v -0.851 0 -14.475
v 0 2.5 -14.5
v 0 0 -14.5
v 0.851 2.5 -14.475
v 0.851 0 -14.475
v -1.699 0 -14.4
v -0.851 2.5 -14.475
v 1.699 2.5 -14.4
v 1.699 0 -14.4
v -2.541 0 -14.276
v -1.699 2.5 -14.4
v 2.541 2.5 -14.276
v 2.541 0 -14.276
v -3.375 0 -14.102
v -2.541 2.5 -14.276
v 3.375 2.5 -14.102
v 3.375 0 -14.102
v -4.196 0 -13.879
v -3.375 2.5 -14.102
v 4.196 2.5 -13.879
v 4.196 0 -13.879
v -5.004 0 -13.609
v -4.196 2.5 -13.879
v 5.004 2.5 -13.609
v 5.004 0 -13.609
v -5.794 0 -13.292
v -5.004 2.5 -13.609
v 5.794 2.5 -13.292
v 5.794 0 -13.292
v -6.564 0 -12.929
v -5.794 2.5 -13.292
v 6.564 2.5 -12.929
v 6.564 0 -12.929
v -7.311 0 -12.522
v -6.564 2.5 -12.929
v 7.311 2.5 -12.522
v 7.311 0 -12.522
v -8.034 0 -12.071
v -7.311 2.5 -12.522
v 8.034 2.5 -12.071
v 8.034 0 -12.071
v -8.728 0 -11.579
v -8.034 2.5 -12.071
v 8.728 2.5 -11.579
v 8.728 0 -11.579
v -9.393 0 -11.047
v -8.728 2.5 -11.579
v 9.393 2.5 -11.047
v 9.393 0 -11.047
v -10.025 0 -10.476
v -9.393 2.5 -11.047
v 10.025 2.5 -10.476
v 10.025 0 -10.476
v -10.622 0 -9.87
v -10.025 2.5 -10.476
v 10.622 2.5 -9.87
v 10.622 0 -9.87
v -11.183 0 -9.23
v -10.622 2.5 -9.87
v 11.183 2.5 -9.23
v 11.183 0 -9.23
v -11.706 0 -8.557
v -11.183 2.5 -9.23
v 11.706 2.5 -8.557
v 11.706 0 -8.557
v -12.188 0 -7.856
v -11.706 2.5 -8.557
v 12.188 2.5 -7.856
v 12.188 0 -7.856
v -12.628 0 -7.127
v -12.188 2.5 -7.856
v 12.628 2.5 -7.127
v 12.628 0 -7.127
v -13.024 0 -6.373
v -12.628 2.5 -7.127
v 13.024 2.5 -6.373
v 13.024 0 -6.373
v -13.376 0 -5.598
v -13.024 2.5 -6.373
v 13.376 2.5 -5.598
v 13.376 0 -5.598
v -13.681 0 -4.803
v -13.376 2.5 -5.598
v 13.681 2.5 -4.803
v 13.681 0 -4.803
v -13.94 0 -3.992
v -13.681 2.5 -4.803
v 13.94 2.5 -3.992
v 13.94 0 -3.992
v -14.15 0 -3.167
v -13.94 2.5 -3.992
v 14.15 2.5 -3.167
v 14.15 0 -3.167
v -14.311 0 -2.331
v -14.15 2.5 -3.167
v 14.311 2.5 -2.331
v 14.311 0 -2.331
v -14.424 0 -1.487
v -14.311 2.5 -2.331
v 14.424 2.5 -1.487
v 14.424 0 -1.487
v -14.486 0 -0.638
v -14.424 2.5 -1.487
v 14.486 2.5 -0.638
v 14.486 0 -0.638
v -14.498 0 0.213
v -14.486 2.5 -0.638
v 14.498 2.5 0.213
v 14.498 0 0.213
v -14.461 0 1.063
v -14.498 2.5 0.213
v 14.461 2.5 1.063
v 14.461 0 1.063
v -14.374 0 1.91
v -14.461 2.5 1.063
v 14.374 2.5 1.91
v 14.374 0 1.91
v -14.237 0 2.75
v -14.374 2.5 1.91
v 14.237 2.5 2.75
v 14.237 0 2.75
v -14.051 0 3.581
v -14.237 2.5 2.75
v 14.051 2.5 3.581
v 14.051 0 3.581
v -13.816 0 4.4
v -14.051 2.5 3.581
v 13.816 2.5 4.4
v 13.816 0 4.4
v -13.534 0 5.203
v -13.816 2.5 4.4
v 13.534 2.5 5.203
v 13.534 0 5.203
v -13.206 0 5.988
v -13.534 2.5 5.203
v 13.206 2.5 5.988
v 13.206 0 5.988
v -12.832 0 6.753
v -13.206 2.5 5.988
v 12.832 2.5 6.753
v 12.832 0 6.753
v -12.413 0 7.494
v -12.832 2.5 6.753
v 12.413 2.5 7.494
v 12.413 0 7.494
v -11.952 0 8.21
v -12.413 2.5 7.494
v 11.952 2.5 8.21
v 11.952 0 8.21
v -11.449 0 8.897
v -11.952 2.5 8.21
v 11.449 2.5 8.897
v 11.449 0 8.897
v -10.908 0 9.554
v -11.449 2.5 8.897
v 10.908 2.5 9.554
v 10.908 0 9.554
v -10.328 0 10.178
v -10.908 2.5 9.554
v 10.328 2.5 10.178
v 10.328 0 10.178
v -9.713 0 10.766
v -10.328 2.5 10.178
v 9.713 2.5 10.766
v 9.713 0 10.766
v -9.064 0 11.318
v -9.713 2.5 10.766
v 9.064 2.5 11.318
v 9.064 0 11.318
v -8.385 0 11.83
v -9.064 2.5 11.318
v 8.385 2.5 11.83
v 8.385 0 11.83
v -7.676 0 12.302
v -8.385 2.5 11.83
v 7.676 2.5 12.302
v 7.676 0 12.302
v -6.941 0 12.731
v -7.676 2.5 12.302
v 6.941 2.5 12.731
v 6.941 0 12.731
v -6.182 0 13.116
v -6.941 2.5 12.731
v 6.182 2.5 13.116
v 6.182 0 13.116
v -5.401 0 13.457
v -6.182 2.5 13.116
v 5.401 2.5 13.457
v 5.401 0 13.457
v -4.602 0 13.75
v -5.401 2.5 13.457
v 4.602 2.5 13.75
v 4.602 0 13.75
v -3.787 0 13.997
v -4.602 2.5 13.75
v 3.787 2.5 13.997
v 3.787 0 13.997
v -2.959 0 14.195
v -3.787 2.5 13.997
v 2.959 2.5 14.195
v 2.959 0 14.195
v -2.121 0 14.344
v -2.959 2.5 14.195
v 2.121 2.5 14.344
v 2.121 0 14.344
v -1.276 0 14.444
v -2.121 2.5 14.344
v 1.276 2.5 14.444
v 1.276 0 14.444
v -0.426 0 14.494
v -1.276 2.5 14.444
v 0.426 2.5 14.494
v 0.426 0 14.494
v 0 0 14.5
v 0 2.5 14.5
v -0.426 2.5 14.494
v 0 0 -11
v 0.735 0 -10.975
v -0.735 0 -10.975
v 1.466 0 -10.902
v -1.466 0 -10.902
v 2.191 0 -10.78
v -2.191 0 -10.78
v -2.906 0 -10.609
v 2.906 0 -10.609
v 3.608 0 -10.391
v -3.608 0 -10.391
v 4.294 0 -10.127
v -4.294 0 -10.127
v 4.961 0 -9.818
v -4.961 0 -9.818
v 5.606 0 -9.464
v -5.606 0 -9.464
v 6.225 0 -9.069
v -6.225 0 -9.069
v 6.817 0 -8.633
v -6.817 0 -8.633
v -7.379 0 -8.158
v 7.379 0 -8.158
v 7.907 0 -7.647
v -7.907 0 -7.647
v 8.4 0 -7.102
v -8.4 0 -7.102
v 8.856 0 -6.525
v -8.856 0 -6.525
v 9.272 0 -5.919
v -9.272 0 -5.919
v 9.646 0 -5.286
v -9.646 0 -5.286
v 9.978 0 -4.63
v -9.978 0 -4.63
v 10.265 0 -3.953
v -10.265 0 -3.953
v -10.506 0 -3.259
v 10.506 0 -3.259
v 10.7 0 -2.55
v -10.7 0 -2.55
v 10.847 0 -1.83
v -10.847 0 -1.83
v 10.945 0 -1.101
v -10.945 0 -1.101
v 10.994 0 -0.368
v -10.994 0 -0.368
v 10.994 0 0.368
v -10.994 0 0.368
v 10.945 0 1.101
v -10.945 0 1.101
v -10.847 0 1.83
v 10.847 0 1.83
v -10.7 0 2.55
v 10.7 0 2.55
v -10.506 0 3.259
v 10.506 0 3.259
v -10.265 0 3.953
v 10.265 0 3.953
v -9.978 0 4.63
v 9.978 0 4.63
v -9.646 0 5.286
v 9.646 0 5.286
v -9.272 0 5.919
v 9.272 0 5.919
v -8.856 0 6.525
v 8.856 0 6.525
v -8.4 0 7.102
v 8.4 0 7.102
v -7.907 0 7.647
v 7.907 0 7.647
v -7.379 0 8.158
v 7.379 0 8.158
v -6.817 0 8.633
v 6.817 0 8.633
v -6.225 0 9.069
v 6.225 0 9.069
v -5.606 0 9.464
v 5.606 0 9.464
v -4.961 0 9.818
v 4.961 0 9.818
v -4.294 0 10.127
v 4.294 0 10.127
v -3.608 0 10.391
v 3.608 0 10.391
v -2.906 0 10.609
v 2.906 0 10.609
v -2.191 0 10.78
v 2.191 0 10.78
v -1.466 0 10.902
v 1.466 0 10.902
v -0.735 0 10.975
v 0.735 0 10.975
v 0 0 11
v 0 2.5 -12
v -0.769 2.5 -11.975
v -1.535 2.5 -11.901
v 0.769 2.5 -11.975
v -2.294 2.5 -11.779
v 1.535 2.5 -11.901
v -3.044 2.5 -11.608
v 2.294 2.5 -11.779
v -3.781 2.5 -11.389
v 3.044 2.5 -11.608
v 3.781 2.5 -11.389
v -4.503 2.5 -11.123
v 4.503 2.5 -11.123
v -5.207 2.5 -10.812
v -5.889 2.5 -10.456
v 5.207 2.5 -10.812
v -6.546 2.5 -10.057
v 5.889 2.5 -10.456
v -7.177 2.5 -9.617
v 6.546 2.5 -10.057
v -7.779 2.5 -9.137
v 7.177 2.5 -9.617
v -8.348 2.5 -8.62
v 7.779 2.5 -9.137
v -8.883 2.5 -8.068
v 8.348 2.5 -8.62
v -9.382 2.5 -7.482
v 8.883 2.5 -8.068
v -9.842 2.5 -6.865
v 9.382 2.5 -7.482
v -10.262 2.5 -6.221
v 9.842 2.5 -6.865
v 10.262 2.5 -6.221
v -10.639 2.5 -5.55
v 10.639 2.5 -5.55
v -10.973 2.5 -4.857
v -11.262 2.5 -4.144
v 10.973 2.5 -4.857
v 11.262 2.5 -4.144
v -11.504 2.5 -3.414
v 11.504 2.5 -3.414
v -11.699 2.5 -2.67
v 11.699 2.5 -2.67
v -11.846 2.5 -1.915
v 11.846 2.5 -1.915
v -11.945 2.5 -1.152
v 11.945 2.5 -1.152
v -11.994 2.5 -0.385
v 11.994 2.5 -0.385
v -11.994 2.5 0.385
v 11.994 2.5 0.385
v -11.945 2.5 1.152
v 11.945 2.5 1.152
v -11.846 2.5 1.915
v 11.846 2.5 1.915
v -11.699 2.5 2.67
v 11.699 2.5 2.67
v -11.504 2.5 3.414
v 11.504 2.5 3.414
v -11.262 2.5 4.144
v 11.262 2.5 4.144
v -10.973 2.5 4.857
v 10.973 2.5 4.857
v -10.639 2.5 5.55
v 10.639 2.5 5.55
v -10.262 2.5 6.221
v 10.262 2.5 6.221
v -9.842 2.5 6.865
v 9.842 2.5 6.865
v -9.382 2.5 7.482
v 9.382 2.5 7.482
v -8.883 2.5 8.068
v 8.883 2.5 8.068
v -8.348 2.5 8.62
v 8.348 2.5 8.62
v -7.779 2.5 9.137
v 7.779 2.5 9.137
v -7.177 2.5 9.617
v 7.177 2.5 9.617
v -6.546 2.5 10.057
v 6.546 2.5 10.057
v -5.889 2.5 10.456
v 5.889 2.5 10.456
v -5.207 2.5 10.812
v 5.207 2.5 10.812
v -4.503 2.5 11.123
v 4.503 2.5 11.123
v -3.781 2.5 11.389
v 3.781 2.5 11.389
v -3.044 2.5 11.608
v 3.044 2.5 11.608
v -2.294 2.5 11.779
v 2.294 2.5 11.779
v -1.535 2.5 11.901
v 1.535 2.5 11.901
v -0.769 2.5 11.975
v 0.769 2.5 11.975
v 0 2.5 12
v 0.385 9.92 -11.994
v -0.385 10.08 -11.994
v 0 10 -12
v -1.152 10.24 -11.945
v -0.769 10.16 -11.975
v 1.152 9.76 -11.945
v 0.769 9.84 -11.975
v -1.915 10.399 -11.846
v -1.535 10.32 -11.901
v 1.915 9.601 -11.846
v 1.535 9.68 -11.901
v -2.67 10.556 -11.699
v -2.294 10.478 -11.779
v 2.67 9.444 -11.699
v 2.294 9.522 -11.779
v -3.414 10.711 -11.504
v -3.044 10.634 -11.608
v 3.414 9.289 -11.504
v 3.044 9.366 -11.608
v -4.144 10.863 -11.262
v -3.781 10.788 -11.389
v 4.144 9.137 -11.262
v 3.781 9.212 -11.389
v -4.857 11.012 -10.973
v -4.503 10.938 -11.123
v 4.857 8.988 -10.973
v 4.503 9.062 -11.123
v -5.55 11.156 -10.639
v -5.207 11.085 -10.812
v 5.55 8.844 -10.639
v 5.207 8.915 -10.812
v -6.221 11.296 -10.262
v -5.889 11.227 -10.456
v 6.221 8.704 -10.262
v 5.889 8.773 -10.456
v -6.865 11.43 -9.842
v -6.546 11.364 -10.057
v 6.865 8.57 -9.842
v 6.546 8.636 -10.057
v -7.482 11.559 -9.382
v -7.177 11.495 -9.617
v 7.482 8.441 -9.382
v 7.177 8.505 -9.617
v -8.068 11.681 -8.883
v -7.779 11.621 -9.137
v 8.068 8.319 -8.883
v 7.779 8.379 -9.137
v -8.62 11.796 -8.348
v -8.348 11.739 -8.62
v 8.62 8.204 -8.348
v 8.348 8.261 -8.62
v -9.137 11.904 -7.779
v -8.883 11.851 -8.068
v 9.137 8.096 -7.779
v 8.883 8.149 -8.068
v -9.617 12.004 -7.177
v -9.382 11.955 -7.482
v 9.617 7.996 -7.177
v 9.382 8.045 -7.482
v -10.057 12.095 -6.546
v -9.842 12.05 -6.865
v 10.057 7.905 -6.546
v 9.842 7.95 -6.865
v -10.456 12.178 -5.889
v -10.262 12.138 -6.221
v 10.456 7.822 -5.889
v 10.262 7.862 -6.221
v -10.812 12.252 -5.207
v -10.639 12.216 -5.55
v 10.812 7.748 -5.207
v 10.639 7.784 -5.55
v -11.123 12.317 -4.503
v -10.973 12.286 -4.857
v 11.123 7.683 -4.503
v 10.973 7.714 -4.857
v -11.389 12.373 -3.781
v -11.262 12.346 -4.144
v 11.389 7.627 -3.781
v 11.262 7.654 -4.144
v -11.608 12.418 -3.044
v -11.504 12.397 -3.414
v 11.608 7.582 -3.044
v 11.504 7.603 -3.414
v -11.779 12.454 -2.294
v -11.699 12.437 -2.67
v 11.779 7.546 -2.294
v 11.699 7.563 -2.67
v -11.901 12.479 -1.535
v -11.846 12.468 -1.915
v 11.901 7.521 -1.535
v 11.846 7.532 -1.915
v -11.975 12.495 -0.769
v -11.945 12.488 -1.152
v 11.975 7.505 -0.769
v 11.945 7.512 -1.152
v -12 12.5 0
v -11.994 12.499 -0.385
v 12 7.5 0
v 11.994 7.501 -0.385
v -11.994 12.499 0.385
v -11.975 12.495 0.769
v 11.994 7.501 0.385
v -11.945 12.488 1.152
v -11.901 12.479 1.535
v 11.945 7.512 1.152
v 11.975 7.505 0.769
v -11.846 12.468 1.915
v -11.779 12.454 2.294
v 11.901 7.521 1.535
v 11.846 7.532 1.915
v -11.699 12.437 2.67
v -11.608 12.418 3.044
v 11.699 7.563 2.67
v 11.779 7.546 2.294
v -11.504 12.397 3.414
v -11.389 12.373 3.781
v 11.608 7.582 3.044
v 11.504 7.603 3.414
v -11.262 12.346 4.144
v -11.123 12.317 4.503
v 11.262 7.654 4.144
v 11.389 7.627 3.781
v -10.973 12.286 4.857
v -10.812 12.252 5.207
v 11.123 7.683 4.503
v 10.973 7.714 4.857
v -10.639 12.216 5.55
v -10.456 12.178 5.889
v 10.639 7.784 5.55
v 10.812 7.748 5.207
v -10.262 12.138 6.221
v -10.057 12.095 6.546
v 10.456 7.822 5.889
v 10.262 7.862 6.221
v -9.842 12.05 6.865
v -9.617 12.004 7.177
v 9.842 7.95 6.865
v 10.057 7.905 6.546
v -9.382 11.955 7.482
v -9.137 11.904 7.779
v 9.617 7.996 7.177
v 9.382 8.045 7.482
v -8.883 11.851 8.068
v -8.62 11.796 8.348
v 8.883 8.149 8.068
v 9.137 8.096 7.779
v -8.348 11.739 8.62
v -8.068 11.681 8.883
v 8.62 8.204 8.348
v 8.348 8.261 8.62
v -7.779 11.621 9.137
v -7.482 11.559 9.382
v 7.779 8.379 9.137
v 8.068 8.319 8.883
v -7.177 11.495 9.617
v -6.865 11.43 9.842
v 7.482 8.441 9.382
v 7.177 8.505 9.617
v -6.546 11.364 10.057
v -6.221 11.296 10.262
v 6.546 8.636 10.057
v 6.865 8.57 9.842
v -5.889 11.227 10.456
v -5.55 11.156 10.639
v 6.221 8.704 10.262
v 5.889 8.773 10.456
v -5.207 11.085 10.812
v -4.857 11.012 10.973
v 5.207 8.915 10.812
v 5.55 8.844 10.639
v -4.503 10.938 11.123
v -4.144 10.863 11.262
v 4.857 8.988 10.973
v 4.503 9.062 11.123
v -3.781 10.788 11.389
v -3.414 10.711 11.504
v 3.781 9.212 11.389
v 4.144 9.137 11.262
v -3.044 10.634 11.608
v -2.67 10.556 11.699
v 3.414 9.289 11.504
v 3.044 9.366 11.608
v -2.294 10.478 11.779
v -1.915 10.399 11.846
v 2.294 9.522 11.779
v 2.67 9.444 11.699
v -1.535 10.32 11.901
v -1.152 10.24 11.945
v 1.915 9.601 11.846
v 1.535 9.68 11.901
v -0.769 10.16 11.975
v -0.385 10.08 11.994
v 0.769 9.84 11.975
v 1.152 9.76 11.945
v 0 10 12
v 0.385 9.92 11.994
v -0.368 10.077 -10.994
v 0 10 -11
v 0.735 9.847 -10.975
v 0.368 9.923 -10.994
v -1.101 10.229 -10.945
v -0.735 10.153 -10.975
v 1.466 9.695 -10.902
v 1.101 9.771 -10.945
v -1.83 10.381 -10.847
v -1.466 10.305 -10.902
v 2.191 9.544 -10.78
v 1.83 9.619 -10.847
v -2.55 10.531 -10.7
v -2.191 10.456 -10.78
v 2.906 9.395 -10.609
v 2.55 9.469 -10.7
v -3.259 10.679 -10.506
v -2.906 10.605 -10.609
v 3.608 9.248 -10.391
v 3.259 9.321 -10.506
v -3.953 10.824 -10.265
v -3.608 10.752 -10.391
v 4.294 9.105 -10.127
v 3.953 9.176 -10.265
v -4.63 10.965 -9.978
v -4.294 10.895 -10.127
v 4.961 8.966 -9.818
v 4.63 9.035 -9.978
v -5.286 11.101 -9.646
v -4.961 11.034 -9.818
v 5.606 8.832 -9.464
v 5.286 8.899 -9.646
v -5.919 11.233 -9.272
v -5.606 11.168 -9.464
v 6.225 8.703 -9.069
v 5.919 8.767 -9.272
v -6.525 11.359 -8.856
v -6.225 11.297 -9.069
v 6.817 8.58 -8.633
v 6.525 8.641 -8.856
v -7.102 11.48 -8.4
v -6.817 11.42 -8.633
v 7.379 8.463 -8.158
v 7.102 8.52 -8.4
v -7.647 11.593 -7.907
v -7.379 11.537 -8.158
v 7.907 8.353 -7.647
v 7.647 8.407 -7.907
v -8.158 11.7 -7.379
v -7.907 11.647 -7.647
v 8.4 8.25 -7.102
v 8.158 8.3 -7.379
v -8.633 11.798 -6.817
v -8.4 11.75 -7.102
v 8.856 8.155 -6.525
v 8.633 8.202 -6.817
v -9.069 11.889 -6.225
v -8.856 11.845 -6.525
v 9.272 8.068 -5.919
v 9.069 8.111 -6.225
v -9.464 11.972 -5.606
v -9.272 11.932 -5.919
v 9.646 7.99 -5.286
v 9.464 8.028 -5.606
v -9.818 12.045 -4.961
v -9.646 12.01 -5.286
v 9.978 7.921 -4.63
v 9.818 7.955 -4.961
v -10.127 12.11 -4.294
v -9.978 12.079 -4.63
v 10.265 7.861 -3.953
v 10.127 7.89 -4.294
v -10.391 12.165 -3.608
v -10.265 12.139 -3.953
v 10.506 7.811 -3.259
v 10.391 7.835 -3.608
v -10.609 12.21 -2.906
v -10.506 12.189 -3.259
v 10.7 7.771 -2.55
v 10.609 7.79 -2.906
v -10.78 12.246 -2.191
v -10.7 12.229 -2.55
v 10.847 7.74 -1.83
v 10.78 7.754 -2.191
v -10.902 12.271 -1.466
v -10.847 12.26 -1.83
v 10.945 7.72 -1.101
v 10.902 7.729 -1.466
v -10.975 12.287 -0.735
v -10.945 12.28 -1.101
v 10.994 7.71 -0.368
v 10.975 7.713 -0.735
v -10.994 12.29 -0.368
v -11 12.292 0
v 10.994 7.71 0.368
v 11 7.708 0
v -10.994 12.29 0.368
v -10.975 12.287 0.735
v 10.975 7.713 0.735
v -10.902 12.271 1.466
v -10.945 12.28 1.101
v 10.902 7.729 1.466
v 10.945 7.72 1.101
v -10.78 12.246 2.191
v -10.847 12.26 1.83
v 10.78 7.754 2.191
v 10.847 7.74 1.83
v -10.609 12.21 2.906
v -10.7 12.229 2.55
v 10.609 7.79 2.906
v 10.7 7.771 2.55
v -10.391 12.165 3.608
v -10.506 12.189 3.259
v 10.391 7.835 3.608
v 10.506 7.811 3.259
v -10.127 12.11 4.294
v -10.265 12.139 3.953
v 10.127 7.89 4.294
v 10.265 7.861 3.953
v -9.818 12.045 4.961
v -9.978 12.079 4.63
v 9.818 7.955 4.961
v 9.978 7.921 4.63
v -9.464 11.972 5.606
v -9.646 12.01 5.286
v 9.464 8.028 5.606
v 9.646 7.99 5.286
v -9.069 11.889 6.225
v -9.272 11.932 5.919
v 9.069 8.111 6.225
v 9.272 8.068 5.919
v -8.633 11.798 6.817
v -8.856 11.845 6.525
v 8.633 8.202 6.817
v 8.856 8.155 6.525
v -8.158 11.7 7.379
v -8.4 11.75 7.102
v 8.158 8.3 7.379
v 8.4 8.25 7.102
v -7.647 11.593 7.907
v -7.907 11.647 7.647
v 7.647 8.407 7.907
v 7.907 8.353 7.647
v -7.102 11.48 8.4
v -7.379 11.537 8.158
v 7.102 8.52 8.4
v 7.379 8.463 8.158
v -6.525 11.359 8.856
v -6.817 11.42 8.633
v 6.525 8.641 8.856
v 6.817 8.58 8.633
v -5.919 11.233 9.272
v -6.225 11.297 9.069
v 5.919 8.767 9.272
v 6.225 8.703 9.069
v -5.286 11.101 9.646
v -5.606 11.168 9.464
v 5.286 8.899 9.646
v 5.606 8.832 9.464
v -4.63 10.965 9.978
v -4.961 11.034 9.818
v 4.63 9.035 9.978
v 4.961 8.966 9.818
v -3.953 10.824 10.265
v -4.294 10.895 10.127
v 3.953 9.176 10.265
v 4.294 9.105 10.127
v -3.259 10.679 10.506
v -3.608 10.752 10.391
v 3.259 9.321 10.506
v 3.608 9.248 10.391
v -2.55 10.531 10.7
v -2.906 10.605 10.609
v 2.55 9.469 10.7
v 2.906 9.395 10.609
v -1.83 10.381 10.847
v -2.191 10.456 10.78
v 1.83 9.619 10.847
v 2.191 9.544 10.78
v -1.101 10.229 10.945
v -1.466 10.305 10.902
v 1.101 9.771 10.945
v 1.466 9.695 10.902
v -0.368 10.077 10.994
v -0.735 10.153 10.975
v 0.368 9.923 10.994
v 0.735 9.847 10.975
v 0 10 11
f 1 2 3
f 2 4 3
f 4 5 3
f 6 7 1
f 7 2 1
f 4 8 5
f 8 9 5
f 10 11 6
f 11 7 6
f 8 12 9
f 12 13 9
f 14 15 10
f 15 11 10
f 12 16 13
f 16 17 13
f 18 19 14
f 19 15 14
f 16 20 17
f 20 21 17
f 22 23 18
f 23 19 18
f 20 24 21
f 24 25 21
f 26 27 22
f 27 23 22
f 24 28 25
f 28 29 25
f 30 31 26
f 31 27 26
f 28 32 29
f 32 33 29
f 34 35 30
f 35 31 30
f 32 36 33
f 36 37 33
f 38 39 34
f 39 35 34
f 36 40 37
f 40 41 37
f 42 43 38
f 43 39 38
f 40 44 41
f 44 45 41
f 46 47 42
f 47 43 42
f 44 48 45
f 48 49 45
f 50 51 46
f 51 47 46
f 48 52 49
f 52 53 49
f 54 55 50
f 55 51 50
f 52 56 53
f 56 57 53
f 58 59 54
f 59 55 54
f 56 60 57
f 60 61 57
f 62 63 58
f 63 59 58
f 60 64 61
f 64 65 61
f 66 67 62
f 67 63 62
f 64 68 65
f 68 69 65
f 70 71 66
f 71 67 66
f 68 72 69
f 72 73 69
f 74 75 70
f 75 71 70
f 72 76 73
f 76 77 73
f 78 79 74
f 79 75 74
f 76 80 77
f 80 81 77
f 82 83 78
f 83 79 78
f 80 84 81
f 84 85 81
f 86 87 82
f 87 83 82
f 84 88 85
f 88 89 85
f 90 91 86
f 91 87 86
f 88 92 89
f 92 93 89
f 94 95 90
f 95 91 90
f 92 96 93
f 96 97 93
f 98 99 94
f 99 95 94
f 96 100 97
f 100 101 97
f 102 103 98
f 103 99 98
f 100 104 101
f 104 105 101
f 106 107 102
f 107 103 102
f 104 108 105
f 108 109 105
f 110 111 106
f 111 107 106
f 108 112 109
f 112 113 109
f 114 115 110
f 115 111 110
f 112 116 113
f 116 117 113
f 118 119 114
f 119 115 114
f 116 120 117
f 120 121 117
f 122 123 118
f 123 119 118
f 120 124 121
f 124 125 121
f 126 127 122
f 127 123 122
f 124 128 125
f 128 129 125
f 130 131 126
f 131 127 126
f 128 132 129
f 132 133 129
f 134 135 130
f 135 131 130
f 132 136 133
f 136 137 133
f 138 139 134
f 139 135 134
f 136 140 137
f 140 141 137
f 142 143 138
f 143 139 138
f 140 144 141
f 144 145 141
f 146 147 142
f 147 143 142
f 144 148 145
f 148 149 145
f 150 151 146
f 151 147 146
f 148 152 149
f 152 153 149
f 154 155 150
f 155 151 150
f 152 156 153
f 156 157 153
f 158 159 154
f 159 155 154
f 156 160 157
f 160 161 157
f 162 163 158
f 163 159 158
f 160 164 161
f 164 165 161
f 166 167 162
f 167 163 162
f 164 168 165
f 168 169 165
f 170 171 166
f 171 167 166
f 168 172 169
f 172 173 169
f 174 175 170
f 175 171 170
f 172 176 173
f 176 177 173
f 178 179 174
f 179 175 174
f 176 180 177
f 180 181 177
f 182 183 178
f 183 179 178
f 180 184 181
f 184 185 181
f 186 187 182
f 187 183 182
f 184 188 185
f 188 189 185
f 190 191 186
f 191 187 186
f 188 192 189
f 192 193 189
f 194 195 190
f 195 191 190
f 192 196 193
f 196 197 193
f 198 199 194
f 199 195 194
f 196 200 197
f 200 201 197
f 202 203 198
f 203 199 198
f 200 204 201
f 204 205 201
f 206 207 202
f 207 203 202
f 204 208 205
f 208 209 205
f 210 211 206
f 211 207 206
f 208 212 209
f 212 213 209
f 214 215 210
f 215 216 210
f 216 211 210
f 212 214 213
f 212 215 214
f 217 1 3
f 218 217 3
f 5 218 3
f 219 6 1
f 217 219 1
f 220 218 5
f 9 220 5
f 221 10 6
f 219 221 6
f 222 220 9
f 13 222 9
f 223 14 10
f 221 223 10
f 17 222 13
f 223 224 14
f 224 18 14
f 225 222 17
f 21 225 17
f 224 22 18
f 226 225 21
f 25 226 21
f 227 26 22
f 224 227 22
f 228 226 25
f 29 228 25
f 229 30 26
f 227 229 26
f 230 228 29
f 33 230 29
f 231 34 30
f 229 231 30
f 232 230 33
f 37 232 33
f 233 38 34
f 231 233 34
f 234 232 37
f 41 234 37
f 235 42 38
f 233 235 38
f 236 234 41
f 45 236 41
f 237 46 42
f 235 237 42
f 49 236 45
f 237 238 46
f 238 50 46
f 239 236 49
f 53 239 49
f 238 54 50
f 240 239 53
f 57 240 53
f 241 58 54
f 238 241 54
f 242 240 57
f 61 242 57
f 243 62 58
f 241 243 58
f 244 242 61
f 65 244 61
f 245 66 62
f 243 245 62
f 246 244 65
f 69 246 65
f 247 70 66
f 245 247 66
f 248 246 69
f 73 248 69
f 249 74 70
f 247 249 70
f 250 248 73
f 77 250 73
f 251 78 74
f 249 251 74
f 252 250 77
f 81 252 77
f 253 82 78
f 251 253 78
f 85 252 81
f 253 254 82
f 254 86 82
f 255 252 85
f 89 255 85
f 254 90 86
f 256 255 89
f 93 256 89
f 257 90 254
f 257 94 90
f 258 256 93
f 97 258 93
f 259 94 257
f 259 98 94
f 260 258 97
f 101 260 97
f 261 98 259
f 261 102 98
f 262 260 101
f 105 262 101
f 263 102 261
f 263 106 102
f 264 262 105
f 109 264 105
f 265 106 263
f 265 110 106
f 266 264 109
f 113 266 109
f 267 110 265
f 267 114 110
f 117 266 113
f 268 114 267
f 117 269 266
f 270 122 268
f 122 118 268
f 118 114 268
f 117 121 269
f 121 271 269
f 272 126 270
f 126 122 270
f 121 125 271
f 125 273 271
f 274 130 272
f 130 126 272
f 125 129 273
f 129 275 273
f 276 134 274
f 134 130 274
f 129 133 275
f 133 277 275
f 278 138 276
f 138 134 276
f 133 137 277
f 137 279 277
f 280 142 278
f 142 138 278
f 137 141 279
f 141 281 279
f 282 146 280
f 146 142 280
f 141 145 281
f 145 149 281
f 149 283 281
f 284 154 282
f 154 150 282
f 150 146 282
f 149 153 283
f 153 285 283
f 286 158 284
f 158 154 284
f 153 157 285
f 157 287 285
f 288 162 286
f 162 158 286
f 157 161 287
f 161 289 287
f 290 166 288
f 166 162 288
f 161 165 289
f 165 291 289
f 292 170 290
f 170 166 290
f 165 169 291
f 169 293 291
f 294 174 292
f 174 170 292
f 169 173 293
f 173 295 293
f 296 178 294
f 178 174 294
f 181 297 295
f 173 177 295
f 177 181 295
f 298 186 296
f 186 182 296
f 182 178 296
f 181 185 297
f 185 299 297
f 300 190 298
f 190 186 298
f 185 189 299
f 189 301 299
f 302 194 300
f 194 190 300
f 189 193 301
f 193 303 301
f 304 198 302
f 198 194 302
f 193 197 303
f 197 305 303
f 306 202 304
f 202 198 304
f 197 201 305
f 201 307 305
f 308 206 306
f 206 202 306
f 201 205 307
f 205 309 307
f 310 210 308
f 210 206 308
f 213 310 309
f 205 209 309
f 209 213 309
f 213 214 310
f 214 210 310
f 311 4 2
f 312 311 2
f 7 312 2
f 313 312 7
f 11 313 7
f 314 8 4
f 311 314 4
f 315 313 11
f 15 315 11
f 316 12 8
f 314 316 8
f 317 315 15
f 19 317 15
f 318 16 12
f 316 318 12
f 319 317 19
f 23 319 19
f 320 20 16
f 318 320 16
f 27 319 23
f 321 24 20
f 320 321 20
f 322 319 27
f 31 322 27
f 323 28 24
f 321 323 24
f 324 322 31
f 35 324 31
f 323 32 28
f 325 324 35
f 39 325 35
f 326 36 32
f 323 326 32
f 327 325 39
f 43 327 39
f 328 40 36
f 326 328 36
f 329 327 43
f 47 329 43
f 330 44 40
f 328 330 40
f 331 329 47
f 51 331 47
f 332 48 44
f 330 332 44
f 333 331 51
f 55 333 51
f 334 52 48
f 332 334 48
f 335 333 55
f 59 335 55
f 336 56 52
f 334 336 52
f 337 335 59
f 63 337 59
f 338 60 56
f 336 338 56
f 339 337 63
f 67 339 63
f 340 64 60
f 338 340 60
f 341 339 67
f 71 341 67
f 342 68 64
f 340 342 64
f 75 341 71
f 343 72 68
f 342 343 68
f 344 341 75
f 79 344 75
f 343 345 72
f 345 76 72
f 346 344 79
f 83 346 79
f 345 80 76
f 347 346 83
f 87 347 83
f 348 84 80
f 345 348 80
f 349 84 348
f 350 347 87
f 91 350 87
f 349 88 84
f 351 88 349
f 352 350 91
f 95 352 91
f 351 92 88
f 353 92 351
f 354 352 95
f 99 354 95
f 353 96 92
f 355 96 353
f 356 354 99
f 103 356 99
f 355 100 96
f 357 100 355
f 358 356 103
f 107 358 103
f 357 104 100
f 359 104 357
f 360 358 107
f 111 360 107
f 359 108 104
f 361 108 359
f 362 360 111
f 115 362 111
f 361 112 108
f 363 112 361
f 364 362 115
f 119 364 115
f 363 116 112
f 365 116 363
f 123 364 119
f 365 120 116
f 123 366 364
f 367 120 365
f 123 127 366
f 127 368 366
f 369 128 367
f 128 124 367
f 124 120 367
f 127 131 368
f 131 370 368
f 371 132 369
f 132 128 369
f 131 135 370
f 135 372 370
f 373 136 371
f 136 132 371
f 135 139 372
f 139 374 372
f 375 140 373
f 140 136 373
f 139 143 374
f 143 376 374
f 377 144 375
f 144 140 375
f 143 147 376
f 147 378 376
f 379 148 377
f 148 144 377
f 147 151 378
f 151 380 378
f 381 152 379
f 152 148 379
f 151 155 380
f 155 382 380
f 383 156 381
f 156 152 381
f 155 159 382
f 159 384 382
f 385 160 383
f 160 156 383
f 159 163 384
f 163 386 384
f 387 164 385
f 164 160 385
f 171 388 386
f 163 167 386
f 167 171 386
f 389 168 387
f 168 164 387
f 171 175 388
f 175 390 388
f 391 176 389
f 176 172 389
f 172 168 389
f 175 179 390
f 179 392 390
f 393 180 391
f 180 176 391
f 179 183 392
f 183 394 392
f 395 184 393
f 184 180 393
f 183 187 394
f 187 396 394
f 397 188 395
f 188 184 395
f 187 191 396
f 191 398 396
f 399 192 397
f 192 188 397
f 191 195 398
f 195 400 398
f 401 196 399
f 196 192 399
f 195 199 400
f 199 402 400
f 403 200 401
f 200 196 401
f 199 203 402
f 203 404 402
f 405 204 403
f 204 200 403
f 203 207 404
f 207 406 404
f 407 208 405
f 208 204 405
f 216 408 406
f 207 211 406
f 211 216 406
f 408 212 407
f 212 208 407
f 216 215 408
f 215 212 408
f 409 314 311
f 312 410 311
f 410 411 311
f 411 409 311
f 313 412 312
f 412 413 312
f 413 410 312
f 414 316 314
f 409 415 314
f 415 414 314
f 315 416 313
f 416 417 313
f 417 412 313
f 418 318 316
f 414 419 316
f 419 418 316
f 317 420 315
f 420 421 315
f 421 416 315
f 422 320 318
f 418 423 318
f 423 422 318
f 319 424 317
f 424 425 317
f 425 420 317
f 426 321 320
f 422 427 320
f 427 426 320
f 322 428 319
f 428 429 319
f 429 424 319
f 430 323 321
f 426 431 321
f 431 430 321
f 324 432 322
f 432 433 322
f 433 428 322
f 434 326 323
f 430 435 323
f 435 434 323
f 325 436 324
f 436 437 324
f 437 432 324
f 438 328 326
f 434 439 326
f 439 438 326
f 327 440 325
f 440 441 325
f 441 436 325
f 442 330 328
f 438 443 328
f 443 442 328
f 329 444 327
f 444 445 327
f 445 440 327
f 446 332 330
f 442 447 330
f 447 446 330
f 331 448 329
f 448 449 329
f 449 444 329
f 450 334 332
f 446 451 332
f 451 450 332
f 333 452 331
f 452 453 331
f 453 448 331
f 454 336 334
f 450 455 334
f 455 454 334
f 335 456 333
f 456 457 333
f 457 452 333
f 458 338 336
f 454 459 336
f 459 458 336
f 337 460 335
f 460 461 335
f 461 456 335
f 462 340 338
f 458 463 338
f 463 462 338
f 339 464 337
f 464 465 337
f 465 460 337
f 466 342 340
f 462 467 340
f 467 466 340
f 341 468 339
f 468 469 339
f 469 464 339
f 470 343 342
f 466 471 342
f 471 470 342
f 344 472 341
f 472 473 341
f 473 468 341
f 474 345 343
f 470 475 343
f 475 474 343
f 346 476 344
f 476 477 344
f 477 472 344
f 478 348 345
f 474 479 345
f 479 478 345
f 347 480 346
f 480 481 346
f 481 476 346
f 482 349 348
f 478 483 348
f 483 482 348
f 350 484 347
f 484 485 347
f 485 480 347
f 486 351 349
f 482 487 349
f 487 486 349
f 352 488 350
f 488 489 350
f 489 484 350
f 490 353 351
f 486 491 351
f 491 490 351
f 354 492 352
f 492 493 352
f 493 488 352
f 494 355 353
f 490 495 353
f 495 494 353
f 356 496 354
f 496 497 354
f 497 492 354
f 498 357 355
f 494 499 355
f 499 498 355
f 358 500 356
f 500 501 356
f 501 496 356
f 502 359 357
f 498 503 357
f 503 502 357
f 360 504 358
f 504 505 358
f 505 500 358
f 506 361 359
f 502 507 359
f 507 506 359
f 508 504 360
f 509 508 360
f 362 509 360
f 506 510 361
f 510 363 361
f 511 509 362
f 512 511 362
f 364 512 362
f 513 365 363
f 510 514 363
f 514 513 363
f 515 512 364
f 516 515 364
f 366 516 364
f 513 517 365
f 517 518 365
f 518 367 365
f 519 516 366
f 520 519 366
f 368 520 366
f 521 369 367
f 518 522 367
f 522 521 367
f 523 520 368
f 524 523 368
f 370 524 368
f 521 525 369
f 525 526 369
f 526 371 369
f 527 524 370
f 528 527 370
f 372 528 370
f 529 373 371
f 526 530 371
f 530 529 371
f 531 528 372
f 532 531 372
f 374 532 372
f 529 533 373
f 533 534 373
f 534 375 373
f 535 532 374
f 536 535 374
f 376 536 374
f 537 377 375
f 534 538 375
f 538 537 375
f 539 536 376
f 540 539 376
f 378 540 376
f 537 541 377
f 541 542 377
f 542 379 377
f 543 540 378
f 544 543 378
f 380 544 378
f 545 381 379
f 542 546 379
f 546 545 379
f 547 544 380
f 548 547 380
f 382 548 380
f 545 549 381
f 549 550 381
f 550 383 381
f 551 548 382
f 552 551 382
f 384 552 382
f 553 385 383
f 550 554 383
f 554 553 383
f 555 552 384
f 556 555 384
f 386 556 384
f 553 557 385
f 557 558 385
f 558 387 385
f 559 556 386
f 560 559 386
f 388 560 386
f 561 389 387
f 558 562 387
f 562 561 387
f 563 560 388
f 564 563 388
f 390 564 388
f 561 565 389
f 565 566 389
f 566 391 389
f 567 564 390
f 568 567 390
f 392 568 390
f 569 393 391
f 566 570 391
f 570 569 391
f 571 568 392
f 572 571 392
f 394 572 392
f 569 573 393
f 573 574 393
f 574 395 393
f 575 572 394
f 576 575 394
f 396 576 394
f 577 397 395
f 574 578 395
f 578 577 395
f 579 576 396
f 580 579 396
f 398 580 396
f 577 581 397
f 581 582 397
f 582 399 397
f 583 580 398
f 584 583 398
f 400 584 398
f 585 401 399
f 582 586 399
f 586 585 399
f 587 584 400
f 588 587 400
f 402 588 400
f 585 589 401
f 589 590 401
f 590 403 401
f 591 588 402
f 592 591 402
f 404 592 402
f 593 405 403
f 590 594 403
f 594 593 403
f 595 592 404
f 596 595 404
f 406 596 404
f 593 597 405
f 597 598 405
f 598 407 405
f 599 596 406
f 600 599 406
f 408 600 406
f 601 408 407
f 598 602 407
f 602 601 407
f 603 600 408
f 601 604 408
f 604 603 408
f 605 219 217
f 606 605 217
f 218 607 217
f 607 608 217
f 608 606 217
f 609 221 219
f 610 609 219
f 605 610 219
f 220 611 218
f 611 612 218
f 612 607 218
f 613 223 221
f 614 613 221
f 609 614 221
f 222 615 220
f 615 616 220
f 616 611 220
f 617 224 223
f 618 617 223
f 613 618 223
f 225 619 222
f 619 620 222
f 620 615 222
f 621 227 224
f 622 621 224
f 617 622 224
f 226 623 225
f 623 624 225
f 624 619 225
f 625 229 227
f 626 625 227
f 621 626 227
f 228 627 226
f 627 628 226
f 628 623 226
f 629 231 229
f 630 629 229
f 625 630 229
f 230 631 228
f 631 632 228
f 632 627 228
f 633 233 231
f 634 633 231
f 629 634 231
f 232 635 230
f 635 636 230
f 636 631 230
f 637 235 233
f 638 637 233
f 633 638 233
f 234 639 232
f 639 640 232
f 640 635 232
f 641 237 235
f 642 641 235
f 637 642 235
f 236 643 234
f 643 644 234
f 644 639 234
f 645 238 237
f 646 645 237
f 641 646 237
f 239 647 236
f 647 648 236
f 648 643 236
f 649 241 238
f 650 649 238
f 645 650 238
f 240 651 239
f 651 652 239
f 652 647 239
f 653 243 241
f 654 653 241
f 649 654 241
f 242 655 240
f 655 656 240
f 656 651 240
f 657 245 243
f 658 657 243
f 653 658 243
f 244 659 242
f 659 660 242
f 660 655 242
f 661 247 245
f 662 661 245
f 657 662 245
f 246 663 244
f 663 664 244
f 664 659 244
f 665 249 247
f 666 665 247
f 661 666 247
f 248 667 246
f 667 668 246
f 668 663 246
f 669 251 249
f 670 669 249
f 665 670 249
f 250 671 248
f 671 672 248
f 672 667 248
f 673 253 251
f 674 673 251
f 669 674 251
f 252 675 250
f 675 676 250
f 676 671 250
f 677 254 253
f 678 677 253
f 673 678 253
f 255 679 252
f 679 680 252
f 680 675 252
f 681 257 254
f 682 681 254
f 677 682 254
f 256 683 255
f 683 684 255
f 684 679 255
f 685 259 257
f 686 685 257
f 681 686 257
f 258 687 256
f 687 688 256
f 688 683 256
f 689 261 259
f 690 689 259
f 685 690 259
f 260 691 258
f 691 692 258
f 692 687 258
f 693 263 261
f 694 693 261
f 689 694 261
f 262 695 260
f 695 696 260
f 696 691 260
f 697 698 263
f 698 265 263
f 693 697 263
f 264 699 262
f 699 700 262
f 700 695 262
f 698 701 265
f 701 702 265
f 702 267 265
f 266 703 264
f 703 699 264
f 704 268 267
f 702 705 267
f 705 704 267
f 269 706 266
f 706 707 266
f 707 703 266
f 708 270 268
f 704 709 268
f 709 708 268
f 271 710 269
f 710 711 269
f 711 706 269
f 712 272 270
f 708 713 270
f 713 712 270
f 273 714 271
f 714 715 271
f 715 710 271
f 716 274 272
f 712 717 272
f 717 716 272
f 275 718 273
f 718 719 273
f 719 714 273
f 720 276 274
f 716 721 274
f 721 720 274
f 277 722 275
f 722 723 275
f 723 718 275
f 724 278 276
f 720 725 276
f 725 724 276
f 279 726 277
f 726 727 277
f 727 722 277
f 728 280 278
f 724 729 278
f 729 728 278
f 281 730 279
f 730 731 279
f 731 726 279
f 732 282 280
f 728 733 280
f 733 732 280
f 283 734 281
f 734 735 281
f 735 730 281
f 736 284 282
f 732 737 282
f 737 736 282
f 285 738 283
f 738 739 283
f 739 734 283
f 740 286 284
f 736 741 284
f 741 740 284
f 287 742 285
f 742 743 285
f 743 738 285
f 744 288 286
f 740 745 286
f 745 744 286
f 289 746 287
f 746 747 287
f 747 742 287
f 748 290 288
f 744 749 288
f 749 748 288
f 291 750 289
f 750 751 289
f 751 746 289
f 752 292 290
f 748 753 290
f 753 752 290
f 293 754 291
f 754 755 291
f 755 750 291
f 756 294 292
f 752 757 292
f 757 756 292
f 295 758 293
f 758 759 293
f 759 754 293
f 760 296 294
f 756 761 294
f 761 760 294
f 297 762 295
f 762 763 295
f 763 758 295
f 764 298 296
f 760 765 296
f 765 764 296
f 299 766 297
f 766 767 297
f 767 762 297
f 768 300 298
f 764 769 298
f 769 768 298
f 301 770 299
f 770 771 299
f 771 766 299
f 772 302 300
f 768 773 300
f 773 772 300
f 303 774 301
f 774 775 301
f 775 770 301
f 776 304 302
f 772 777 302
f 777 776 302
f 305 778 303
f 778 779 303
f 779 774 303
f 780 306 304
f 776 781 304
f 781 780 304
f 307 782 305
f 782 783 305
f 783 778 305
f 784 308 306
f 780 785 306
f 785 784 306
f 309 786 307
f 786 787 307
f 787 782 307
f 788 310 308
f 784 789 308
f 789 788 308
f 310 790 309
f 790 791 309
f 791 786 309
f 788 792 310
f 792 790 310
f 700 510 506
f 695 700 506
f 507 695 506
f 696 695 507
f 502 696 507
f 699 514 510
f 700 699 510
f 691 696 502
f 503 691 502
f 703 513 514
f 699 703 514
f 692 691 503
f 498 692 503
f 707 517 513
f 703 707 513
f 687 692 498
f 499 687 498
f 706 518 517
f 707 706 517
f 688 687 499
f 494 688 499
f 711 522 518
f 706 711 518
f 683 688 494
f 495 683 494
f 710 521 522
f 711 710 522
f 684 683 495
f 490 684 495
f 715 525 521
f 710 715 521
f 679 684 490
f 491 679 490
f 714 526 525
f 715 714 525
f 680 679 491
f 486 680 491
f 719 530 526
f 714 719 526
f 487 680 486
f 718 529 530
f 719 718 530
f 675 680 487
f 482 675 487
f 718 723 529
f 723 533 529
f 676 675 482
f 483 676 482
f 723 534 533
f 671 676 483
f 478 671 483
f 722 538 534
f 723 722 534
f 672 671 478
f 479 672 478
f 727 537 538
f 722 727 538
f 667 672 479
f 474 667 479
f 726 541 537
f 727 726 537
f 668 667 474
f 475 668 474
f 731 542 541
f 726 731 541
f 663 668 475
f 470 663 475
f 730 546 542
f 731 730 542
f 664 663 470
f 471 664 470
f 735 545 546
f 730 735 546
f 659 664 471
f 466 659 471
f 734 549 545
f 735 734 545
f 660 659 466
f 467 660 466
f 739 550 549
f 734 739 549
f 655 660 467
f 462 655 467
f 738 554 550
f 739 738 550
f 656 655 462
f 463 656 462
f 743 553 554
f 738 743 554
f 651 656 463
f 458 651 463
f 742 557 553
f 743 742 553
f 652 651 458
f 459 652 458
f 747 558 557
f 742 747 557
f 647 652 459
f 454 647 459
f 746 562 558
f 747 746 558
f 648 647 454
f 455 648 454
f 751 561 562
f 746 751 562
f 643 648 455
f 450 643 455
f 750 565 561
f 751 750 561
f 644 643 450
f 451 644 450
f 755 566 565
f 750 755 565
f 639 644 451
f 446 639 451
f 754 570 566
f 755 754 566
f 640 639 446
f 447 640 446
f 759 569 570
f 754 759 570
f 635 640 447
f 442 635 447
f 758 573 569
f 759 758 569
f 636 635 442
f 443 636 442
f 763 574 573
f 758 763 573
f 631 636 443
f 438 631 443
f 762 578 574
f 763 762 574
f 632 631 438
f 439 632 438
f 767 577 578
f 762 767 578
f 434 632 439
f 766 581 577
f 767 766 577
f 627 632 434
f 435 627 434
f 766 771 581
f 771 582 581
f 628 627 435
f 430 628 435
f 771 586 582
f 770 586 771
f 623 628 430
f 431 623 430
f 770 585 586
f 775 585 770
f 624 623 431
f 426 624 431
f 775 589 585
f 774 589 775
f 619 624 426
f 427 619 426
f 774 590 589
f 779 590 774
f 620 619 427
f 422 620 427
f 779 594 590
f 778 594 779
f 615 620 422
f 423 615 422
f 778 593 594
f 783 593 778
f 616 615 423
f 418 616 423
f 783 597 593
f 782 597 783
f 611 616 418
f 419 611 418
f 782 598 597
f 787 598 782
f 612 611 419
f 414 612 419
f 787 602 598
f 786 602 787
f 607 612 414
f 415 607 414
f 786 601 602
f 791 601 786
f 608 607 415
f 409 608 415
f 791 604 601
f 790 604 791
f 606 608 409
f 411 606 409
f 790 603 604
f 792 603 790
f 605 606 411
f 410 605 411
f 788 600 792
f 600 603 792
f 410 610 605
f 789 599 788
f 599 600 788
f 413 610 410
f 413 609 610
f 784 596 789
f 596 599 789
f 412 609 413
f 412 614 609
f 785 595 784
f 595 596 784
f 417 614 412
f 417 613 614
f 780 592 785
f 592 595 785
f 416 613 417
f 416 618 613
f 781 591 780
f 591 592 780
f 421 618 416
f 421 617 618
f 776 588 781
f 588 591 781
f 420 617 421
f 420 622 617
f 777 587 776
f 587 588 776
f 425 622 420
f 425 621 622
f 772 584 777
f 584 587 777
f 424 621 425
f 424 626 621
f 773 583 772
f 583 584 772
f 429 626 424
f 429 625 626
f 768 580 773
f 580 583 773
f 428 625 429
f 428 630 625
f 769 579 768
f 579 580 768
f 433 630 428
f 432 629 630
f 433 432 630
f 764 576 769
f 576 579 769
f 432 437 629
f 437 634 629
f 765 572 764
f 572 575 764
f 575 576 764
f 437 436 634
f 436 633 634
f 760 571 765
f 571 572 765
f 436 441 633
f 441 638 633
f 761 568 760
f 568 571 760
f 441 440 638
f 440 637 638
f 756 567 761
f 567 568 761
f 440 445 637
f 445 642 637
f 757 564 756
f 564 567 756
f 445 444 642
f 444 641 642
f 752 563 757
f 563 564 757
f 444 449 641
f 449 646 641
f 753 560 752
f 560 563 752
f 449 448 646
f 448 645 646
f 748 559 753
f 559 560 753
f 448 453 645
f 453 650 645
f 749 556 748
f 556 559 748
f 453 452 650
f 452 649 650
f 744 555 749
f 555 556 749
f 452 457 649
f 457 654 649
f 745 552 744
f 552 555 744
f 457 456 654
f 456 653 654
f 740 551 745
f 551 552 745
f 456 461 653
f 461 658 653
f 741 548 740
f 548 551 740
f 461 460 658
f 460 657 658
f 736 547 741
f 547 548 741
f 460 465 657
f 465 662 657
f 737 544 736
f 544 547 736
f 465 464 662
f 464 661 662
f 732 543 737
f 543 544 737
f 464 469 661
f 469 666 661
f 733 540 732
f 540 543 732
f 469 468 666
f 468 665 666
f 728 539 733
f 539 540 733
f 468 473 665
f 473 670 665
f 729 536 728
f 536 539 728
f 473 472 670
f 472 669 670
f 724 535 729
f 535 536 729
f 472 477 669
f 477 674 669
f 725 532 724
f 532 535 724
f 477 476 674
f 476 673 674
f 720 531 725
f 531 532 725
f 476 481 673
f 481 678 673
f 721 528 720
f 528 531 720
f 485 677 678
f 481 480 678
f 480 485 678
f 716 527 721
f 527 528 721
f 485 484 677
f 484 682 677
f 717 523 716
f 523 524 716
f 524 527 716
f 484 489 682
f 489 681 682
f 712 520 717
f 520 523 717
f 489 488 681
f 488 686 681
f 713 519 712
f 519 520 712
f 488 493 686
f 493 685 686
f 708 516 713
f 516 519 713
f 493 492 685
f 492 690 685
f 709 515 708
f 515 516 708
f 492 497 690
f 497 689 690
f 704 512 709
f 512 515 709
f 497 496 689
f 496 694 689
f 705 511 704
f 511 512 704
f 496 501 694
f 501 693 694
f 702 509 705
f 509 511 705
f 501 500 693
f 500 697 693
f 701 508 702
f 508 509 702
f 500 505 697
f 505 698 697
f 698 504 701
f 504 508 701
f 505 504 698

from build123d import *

# Parameters (mm, degrees)
SKETCH1_R               = 14.5
BOSS_EXTRUDE1_DEPTH     = 12.5
CUT_EXTRUDE1_START      = -10
SKETCH2_R               = 14.5
SKETCH2_R_2             = 12
CUT_EXTRUDE1_DEPTH      = 10
SKETCH4_R               = 11
CUT_EXTRUDE2_DEPTH      = 25.015619917
CUT_EXTRUDE3_DEPTH      = 25.015619917
CUT_EXTRUDE3_DEPTH_BACK = 25.015619917


with BuildPart() as part:
    # Sketch1 → Boss-Extrude1 (new body)
    with BuildSketch(Plane(origin=(0, 0, 0), x_dir=(1, 0, 0), z_dir=(0, 1, 0))):
        with Locations(Location((0, 0, 0), (0, 0, 270))):
            Circle(SKETCH1_R)
    extrude(amount=BOSS_EXTRUDE1_DEPTH)

    # Sketch2 → Cut-Extrude1 (cut)
    with BuildSketch(Plane(origin=(0, 12.5, 0), x_dir=(1, 0, 0), z_dir=(0, 1, 0)).offset(CUT_EXTRUDE1_START)):
        with Locations(Location((0, 0, 0), (0, 0, 270))):
            Circle(SKETCH2_R)
        with Locations(Location((0, 0, 0), (0, 0, 270))):
            Circle(SKETCH2_R_2, mode=Mode.SUBTRACT)
    extrude(amount=CUT_EXTRUDE1_DEPTH, mode=Mode.SUBTRACT)

    # Sketch4 → Cut-Extrude2 (cut, through all)
    with BuildSketch(Plane(origin=(0, 12.5, 0), x_dir=(1, 0, 0), z_dir=(0, 1, 0))):
        with Locations(Location((0, 0, 0), (0, 0, 270))):
            Circle(SKETCH4_R)
    extrude(amount=-CUT_EXTRUDE2_DEPTH, mode=Mode.SUBTRACT)

    # Sketch5 → Cut-Extrude3 (cut, two sides: drawn at the far end of the back side and taken through both)
    with BuildSketch(Plane.XY.offset(-CUT_EXTRUDE3_DEPTH_BACK)):
        Polygon((-12, 12.5), (12, 12.5), (12, 7.5), align=None)
    extrude(amount=CUT_EXTRUDE3_DEPTH + CUT_EXTRUDE3_DEPTH_BACK, mode=Mode.SUBTRACT)


solid = part.part
